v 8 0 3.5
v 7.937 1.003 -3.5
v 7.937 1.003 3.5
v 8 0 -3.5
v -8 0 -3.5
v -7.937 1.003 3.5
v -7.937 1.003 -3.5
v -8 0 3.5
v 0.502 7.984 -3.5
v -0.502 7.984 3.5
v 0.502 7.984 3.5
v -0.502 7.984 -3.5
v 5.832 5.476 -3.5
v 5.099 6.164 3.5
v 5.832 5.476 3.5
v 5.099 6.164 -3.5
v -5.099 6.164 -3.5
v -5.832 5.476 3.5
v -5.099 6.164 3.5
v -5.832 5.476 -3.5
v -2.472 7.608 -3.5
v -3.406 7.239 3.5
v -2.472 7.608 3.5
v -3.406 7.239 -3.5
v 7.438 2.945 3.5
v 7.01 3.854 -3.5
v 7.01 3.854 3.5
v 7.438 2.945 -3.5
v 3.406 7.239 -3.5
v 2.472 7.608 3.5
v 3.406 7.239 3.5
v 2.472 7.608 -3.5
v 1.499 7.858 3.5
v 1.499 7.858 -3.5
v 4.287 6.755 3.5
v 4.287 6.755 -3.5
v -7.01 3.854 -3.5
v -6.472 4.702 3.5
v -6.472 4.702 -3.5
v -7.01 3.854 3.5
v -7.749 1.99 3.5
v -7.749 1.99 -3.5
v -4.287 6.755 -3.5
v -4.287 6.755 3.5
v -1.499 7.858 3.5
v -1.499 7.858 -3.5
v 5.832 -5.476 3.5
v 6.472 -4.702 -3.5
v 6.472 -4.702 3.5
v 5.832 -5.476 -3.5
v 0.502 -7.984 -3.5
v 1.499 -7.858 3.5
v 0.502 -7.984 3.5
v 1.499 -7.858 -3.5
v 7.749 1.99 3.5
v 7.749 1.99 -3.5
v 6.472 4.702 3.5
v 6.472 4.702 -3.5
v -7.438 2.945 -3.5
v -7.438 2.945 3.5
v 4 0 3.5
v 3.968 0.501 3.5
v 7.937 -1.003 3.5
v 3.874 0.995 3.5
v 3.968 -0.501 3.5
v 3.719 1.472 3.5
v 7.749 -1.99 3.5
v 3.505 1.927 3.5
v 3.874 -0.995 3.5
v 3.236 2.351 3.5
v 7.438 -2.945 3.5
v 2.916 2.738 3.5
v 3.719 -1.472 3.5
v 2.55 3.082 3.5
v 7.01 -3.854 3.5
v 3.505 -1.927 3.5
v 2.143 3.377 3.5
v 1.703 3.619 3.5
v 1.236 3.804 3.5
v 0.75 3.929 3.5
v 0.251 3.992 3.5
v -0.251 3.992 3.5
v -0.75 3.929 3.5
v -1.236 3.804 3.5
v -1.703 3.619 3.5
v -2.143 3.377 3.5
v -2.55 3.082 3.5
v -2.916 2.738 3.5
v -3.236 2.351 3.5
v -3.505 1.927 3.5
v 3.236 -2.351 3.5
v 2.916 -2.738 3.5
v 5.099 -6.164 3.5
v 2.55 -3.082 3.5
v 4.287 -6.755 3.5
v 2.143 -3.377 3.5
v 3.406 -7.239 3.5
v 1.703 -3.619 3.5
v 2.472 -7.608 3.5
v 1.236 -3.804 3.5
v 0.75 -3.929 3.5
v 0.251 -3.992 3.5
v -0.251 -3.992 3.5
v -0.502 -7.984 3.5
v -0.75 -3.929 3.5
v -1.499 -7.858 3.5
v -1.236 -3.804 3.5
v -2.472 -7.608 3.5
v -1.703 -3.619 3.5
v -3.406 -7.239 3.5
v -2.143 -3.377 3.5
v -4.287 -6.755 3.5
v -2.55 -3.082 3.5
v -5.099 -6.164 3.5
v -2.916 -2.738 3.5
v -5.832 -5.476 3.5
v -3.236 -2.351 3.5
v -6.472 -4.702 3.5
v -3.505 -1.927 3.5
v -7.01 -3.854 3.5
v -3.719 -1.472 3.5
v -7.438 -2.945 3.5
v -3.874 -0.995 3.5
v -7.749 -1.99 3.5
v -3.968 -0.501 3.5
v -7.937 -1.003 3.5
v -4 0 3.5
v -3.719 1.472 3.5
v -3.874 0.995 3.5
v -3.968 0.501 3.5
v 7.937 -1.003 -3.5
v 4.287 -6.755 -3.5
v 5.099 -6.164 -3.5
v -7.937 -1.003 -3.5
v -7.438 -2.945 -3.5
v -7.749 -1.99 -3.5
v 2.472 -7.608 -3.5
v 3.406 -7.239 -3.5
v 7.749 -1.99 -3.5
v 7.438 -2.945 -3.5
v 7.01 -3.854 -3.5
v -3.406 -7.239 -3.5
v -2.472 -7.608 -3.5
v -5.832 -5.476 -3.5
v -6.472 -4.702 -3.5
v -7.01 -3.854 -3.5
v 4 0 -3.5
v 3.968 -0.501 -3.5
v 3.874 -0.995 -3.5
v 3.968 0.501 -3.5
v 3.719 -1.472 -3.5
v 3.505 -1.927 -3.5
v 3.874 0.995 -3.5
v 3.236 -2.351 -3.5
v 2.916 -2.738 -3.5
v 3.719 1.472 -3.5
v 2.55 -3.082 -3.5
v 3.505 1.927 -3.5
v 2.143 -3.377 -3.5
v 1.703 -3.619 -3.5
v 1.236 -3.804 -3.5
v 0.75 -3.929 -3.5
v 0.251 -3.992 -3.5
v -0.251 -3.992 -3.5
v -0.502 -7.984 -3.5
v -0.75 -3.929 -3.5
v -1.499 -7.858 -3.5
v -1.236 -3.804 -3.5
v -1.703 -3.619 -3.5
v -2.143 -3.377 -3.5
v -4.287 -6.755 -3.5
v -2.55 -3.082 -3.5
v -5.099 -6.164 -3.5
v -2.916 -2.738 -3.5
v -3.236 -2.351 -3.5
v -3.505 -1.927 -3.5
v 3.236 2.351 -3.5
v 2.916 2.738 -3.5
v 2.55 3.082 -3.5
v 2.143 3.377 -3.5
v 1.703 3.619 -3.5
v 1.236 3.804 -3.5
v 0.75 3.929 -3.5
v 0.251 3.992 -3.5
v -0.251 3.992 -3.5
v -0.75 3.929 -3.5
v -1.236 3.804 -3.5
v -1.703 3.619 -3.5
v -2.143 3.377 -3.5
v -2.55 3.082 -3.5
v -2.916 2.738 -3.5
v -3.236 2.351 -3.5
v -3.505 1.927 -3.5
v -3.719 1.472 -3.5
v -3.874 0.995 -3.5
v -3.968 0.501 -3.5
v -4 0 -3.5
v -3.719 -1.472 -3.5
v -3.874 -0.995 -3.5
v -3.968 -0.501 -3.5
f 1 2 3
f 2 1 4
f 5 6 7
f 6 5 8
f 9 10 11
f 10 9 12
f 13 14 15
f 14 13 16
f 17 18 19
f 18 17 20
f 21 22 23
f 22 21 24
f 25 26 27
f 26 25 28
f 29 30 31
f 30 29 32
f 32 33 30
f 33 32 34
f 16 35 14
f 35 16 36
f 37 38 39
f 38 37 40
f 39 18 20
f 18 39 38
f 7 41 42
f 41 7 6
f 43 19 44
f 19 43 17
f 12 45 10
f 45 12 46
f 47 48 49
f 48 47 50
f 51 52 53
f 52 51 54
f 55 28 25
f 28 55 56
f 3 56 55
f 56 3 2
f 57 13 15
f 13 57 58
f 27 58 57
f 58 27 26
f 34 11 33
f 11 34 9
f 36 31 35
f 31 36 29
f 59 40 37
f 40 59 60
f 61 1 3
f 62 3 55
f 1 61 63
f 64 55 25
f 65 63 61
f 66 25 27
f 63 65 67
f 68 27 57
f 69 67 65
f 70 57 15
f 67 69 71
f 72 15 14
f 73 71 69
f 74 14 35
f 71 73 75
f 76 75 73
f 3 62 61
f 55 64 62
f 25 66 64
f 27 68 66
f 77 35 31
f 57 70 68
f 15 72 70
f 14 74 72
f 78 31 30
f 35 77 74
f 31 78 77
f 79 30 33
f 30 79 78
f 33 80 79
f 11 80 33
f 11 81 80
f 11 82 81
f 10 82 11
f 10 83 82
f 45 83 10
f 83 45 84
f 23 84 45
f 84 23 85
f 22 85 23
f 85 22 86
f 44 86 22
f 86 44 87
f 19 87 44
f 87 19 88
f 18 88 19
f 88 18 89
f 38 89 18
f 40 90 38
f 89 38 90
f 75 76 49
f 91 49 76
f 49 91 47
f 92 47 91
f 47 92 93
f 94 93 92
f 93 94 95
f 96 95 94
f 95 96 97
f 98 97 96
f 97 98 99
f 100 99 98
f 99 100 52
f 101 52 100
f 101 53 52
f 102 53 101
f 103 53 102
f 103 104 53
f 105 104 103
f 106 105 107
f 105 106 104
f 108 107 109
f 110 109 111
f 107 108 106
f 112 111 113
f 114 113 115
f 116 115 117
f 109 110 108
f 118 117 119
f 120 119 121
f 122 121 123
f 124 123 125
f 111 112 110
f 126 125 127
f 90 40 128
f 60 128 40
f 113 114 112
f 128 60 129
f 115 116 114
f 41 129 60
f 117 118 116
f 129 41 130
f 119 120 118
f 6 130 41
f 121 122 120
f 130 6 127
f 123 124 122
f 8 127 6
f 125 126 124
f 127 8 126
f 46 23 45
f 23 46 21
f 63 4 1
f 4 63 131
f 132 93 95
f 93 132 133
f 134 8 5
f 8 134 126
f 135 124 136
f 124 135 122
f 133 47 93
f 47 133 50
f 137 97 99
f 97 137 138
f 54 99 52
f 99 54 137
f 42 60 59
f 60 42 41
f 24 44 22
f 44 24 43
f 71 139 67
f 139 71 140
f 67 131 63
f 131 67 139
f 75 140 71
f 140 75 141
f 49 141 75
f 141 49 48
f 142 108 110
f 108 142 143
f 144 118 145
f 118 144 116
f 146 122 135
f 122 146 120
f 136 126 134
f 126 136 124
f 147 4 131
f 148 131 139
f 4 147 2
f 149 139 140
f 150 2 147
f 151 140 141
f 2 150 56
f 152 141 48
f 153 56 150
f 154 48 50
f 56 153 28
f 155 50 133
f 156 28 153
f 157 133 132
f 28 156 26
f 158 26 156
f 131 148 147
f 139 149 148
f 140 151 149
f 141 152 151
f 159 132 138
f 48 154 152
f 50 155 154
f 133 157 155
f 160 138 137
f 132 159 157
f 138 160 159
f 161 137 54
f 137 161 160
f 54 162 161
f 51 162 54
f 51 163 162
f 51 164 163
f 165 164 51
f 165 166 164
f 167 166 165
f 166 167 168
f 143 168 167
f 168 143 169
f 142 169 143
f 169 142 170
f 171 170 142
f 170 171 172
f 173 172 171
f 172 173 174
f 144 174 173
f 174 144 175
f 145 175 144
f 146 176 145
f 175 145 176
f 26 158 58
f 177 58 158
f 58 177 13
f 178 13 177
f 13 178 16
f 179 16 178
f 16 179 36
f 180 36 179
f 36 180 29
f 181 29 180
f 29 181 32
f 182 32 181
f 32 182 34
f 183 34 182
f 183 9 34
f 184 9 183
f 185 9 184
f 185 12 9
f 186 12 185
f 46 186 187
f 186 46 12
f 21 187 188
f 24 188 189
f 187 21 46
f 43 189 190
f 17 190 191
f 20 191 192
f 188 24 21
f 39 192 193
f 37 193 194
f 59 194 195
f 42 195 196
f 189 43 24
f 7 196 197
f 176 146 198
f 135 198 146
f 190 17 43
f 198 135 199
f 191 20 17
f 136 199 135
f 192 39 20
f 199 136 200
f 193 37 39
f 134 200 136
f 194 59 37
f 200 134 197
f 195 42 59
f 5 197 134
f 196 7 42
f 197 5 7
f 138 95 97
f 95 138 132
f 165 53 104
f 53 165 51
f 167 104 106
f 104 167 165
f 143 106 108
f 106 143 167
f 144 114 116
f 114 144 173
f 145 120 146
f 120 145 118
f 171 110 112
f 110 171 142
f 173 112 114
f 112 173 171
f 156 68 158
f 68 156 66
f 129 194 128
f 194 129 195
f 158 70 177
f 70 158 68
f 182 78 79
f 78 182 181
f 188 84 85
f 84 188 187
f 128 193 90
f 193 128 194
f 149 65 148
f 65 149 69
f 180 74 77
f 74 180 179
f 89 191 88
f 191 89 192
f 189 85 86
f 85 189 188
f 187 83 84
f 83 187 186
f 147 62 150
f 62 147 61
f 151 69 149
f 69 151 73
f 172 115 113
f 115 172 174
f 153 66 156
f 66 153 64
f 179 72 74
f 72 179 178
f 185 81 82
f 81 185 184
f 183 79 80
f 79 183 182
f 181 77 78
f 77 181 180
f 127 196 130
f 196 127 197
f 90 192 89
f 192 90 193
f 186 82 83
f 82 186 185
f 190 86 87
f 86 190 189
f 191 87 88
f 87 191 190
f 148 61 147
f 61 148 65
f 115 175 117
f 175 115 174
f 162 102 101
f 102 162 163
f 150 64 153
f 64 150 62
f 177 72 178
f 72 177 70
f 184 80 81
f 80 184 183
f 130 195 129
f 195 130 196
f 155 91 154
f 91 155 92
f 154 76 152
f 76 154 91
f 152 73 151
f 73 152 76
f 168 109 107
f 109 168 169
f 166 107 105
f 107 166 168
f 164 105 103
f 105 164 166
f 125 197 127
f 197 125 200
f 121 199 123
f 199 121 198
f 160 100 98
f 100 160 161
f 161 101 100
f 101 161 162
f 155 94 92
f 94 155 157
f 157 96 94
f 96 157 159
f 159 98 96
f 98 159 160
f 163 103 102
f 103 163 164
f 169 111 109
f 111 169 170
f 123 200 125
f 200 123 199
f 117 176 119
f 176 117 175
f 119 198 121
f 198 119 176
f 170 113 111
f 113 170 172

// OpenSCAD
$fn = 50;


difference() {
	union() {
		translate(v = [0, 0, -3.5000000000]) {
			cylinder(h = 7, r = 8.0000000000);
		}
	}
	union() {
		translate(v = [0, 0, -100.0000000000]) {
			cylinder(h = 200, r = 4.0000000000);
		}
	}
}
